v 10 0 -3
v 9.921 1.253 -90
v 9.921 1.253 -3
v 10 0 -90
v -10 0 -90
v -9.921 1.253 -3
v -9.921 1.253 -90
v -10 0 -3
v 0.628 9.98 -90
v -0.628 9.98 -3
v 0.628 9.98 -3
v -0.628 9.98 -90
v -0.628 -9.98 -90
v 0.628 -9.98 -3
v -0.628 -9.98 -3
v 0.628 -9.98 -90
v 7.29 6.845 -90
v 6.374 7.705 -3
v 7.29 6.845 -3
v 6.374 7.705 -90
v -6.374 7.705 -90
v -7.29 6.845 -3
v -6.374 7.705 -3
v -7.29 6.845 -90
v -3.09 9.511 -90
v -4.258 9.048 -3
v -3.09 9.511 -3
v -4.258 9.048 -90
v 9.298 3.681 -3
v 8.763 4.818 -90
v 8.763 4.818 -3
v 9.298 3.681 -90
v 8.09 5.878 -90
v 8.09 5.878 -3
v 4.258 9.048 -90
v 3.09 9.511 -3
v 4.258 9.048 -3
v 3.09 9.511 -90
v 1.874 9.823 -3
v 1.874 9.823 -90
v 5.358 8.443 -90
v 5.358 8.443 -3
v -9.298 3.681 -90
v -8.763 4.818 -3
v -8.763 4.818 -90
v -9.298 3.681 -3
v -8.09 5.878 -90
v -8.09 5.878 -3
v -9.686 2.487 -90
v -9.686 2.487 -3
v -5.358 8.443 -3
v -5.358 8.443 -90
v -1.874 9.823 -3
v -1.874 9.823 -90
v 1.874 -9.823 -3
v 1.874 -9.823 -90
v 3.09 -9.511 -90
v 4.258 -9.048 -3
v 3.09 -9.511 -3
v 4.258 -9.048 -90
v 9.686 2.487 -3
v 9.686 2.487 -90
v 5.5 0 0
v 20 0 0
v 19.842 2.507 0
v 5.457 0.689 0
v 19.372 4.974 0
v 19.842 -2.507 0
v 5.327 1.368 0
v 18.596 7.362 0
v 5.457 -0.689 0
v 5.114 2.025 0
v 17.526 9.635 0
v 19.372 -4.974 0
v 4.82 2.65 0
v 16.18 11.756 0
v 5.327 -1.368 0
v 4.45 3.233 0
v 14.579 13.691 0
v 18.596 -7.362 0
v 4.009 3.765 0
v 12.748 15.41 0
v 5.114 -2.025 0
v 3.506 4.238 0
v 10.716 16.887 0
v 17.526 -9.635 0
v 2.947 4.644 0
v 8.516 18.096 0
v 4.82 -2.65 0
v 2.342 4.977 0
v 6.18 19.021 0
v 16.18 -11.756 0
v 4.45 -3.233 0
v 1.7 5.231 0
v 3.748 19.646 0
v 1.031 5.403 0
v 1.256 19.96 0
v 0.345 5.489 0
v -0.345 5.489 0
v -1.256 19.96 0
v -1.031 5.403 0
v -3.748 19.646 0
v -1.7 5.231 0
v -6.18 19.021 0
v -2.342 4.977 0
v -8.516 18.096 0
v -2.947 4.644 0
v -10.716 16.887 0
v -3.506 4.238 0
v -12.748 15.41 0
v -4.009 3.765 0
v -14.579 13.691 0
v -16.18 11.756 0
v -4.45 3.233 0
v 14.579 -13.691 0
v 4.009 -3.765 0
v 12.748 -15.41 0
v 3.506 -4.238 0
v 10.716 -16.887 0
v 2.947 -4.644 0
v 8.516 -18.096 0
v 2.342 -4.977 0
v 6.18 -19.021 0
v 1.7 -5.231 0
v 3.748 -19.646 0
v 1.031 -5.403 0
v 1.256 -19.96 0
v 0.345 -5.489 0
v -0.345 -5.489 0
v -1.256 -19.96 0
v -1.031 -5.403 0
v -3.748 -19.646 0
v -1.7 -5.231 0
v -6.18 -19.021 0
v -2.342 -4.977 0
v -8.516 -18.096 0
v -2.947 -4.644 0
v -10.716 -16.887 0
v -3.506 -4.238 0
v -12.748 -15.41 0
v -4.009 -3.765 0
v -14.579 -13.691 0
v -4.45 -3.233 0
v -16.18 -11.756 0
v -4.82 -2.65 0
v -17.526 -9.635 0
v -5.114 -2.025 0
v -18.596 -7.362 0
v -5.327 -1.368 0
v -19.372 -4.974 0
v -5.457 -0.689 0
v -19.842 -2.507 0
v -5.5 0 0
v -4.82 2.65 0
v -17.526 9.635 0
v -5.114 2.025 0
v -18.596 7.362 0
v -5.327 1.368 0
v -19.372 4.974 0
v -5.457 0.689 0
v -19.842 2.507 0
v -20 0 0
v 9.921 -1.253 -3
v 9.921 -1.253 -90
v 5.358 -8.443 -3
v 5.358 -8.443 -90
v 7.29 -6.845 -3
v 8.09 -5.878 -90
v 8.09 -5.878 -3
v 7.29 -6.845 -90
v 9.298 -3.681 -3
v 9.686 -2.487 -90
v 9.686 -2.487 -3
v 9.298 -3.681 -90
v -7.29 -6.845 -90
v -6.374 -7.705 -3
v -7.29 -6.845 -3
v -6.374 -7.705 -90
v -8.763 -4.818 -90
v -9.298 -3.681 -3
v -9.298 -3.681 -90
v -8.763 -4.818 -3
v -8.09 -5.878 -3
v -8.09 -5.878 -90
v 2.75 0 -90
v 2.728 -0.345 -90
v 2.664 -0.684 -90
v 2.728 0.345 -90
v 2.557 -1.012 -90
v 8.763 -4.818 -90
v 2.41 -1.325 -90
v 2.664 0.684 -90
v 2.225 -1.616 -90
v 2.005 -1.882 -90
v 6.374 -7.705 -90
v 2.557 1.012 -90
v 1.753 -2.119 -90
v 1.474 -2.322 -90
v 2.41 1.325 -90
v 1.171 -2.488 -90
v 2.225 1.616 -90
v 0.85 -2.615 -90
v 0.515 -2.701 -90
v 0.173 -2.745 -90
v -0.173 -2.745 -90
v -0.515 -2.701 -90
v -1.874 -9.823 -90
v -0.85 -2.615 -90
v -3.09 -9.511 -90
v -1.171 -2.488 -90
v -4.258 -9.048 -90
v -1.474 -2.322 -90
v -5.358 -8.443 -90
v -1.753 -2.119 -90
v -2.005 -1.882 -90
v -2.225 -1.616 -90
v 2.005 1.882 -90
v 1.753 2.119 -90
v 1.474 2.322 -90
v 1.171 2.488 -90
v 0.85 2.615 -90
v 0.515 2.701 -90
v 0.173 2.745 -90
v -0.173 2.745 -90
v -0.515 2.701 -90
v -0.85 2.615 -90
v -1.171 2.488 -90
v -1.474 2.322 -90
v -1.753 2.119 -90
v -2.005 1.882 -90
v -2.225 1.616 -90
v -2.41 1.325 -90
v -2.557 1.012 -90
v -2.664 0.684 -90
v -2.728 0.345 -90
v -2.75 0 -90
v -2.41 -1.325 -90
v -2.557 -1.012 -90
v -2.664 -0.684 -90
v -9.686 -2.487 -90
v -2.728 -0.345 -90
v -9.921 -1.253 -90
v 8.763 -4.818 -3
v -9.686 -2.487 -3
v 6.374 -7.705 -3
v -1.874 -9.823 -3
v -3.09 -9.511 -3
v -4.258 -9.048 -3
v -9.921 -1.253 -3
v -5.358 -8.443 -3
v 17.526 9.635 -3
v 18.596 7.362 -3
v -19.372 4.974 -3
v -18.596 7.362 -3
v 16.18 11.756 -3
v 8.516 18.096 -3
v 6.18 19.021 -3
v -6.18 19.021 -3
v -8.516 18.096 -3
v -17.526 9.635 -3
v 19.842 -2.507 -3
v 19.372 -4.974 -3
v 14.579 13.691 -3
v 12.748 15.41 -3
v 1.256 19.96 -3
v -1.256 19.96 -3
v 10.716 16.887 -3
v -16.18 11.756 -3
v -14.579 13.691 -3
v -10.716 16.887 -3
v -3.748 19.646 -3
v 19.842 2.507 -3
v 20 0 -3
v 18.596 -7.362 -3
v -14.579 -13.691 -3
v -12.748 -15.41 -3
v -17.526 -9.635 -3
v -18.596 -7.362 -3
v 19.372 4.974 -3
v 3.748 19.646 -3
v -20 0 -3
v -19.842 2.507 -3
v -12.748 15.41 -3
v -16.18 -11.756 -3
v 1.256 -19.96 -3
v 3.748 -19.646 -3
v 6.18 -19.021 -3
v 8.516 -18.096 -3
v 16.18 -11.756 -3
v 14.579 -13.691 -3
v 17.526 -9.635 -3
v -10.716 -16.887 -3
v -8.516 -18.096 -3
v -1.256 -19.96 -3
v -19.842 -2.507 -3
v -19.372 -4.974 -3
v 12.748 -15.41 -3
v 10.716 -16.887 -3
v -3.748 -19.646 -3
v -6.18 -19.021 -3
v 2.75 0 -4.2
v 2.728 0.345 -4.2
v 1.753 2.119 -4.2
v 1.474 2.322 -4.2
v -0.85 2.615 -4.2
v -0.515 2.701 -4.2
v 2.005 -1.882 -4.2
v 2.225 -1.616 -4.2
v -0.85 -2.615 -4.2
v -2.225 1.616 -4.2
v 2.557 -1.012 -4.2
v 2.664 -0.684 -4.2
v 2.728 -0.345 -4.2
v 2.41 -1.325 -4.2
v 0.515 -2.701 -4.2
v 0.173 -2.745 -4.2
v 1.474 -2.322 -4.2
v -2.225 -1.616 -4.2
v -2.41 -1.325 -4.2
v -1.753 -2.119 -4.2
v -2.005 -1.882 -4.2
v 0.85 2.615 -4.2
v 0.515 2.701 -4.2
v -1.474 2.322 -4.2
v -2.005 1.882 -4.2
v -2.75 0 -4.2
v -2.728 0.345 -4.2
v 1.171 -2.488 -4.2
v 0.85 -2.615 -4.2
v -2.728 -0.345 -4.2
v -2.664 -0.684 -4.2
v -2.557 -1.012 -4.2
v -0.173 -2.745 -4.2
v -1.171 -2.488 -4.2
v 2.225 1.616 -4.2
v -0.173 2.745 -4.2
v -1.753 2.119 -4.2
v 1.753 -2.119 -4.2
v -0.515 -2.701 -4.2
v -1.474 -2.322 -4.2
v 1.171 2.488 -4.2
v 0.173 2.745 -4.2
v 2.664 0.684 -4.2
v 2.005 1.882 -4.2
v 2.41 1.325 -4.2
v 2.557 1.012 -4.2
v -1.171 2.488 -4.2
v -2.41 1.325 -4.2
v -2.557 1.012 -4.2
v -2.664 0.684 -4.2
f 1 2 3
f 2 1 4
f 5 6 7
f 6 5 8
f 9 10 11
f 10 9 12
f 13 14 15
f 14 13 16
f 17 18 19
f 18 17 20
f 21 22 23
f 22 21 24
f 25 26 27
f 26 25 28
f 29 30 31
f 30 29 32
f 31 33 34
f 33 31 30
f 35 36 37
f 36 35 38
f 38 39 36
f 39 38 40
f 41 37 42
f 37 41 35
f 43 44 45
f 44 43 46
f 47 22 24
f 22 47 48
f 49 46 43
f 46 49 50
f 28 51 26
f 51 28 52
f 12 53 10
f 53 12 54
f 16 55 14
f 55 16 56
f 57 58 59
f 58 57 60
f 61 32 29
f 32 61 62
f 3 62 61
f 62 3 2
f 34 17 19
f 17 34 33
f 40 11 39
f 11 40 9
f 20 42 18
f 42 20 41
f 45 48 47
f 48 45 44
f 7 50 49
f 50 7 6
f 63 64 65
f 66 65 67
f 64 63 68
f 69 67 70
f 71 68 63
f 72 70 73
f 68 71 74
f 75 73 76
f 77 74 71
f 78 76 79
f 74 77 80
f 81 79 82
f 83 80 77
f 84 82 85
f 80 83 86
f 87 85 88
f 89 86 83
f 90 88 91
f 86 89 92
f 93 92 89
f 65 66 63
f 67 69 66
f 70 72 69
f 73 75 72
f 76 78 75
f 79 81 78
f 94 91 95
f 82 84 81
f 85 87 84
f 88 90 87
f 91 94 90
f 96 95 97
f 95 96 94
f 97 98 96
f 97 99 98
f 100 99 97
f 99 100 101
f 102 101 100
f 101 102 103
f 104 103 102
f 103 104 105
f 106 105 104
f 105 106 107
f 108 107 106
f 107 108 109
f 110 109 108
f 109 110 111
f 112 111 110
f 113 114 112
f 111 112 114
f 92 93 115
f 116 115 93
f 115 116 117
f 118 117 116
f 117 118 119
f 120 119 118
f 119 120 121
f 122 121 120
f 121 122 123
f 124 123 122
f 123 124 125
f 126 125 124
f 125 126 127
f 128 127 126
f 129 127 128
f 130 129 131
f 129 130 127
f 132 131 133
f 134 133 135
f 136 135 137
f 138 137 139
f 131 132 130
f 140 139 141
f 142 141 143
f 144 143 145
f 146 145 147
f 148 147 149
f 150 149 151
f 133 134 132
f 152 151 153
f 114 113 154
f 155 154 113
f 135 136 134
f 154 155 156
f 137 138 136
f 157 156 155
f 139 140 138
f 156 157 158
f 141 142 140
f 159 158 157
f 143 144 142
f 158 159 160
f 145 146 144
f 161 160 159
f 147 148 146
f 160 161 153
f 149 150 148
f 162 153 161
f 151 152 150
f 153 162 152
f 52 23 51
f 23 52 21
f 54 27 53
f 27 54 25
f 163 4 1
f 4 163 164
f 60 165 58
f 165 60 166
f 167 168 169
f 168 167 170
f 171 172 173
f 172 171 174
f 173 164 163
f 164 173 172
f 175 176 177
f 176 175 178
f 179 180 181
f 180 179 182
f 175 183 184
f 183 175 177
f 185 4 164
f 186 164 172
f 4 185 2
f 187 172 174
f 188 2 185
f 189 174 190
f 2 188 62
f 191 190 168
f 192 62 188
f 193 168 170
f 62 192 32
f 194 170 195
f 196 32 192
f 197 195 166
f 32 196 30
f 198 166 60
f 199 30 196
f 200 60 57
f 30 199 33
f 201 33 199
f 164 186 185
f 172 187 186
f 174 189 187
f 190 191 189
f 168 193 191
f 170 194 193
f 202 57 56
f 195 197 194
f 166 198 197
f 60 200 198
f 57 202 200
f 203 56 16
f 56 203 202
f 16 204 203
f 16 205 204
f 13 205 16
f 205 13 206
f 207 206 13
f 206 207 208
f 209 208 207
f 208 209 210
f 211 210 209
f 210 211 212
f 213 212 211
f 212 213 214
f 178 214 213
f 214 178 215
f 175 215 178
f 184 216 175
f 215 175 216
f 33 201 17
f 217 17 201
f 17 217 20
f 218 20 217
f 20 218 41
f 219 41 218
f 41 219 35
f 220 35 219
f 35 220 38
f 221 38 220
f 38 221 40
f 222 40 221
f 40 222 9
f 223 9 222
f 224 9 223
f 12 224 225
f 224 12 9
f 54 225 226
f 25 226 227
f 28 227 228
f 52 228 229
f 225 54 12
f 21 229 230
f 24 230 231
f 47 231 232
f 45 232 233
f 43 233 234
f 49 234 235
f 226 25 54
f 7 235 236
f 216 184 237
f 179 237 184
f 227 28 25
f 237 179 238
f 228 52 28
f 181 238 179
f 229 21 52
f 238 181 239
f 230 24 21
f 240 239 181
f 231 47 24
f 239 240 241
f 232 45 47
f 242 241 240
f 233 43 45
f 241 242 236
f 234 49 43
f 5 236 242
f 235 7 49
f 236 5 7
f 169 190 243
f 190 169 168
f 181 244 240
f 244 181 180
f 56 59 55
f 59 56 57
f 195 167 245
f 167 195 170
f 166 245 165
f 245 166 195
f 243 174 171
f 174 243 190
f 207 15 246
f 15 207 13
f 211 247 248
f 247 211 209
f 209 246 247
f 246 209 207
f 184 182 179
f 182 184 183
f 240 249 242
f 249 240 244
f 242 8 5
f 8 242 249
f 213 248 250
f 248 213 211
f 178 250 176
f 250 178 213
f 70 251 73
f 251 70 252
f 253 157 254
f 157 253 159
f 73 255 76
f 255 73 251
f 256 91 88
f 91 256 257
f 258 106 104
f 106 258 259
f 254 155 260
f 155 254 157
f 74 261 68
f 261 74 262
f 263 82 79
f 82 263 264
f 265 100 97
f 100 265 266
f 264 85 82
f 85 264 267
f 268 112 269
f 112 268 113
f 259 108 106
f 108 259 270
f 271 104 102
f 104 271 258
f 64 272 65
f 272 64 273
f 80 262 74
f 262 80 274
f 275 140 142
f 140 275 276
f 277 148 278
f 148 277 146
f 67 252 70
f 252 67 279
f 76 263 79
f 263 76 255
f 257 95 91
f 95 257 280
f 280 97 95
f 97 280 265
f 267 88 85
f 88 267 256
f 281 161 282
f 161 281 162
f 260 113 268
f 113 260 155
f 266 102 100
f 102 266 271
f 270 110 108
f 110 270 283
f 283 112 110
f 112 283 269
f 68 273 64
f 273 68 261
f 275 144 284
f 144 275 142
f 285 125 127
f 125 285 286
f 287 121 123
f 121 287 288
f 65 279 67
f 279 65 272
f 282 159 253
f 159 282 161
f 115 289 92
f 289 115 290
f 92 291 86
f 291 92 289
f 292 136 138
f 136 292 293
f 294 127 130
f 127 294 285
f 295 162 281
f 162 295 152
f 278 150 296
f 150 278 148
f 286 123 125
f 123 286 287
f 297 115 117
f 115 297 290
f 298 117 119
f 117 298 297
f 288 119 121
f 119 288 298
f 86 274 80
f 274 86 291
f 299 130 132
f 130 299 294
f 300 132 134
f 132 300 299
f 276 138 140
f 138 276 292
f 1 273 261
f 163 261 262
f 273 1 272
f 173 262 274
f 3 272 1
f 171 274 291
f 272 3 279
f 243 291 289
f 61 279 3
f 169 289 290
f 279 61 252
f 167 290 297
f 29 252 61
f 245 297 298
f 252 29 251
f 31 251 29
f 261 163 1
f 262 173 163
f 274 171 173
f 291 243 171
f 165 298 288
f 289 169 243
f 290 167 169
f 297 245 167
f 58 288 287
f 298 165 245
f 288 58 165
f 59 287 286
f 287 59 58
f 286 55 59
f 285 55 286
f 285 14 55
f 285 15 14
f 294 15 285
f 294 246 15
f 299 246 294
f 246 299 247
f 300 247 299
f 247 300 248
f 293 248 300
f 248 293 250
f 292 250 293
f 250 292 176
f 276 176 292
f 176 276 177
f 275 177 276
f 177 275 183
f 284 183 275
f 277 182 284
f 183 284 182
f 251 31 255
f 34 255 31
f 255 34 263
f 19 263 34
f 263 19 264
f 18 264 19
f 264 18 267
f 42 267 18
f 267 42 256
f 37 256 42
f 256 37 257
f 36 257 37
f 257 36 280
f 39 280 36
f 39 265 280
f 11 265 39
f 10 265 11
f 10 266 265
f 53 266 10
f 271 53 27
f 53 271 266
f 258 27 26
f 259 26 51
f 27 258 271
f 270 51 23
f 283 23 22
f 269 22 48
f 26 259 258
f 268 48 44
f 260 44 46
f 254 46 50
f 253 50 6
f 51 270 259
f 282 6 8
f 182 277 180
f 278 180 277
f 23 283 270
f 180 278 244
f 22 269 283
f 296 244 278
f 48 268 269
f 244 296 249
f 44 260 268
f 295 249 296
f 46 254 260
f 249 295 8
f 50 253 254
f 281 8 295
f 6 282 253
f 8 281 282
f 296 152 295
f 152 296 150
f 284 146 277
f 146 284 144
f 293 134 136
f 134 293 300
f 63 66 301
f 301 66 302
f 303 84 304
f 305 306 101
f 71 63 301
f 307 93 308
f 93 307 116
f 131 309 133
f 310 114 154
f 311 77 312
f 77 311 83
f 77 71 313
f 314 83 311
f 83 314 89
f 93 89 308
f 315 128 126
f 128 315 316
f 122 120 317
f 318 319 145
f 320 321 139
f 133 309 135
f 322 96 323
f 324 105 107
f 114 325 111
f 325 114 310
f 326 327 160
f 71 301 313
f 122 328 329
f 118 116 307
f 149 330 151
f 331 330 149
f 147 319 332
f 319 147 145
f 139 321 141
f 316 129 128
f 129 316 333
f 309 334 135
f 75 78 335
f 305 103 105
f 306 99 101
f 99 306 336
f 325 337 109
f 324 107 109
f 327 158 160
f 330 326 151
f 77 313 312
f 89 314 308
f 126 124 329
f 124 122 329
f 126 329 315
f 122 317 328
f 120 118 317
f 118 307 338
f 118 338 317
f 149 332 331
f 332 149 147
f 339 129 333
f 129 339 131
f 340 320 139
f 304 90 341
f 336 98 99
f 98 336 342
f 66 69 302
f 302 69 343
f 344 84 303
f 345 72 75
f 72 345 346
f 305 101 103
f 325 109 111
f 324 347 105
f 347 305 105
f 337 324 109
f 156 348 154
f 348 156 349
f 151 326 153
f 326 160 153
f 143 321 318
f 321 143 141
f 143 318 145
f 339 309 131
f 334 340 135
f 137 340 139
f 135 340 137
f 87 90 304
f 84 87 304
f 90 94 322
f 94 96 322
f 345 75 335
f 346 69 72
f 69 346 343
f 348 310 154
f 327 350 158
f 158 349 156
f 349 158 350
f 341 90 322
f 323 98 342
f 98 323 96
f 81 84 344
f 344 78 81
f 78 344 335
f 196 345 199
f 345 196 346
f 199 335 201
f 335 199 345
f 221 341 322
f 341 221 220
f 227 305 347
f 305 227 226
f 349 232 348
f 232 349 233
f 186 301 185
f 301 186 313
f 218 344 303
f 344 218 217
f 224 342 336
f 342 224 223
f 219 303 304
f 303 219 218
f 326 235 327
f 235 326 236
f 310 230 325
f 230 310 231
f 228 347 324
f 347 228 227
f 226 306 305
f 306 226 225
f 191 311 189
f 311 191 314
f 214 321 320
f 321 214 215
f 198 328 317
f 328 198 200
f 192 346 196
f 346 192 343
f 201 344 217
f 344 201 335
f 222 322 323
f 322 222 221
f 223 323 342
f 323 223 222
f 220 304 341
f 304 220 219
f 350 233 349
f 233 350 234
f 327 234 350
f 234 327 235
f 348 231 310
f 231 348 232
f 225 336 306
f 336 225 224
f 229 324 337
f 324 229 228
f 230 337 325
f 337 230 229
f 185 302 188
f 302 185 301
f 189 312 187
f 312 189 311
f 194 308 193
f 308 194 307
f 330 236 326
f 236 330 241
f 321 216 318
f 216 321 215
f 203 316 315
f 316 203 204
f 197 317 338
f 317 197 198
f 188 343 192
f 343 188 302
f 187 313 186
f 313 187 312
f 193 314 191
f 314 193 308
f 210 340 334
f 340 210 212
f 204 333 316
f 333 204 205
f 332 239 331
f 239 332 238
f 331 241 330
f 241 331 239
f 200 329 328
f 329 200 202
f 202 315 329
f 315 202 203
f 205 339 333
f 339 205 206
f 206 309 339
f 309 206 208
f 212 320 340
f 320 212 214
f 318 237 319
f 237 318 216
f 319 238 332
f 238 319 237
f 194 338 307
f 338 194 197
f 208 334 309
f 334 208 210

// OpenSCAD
$fn = 50;


difference() {
	union() {
		translate(v = [0, 0, -90.0000000000]) {
			cylinder(h = 90, r = 10.0000000000);
		}
		translate(v = [0, 0, -3.0000000000]) {
			cylinder(h = 3, r = 20.0000000000);
		}
	}
	union() {
		translate(v = [0, 0, 0]) {
			rotate(a = [0, 0, 0]) {
				difference() {
					union() {
						#translate(v = [0, 0, -90.0000000000]) {
							cylinder(h = 90, r = 2.2500000000);
						}
						#translate(v = [0, 0, -4.2000000000]) {
							cylinder(h = 4.2000000000, r1 = 2.7500000000, r2 = 5.5000000000);
						}
						#translate(v = [0, 0, -90.0000000000]) {
							cylinder(h = 90, r = 2.7500000000);
						}
						#translate(v = [0, 0, -90.0000000000]) {
							cylinder(h = 90, r = 2.2500000000);
						}
					}
					union();
				}
			}
		}
	}
}
